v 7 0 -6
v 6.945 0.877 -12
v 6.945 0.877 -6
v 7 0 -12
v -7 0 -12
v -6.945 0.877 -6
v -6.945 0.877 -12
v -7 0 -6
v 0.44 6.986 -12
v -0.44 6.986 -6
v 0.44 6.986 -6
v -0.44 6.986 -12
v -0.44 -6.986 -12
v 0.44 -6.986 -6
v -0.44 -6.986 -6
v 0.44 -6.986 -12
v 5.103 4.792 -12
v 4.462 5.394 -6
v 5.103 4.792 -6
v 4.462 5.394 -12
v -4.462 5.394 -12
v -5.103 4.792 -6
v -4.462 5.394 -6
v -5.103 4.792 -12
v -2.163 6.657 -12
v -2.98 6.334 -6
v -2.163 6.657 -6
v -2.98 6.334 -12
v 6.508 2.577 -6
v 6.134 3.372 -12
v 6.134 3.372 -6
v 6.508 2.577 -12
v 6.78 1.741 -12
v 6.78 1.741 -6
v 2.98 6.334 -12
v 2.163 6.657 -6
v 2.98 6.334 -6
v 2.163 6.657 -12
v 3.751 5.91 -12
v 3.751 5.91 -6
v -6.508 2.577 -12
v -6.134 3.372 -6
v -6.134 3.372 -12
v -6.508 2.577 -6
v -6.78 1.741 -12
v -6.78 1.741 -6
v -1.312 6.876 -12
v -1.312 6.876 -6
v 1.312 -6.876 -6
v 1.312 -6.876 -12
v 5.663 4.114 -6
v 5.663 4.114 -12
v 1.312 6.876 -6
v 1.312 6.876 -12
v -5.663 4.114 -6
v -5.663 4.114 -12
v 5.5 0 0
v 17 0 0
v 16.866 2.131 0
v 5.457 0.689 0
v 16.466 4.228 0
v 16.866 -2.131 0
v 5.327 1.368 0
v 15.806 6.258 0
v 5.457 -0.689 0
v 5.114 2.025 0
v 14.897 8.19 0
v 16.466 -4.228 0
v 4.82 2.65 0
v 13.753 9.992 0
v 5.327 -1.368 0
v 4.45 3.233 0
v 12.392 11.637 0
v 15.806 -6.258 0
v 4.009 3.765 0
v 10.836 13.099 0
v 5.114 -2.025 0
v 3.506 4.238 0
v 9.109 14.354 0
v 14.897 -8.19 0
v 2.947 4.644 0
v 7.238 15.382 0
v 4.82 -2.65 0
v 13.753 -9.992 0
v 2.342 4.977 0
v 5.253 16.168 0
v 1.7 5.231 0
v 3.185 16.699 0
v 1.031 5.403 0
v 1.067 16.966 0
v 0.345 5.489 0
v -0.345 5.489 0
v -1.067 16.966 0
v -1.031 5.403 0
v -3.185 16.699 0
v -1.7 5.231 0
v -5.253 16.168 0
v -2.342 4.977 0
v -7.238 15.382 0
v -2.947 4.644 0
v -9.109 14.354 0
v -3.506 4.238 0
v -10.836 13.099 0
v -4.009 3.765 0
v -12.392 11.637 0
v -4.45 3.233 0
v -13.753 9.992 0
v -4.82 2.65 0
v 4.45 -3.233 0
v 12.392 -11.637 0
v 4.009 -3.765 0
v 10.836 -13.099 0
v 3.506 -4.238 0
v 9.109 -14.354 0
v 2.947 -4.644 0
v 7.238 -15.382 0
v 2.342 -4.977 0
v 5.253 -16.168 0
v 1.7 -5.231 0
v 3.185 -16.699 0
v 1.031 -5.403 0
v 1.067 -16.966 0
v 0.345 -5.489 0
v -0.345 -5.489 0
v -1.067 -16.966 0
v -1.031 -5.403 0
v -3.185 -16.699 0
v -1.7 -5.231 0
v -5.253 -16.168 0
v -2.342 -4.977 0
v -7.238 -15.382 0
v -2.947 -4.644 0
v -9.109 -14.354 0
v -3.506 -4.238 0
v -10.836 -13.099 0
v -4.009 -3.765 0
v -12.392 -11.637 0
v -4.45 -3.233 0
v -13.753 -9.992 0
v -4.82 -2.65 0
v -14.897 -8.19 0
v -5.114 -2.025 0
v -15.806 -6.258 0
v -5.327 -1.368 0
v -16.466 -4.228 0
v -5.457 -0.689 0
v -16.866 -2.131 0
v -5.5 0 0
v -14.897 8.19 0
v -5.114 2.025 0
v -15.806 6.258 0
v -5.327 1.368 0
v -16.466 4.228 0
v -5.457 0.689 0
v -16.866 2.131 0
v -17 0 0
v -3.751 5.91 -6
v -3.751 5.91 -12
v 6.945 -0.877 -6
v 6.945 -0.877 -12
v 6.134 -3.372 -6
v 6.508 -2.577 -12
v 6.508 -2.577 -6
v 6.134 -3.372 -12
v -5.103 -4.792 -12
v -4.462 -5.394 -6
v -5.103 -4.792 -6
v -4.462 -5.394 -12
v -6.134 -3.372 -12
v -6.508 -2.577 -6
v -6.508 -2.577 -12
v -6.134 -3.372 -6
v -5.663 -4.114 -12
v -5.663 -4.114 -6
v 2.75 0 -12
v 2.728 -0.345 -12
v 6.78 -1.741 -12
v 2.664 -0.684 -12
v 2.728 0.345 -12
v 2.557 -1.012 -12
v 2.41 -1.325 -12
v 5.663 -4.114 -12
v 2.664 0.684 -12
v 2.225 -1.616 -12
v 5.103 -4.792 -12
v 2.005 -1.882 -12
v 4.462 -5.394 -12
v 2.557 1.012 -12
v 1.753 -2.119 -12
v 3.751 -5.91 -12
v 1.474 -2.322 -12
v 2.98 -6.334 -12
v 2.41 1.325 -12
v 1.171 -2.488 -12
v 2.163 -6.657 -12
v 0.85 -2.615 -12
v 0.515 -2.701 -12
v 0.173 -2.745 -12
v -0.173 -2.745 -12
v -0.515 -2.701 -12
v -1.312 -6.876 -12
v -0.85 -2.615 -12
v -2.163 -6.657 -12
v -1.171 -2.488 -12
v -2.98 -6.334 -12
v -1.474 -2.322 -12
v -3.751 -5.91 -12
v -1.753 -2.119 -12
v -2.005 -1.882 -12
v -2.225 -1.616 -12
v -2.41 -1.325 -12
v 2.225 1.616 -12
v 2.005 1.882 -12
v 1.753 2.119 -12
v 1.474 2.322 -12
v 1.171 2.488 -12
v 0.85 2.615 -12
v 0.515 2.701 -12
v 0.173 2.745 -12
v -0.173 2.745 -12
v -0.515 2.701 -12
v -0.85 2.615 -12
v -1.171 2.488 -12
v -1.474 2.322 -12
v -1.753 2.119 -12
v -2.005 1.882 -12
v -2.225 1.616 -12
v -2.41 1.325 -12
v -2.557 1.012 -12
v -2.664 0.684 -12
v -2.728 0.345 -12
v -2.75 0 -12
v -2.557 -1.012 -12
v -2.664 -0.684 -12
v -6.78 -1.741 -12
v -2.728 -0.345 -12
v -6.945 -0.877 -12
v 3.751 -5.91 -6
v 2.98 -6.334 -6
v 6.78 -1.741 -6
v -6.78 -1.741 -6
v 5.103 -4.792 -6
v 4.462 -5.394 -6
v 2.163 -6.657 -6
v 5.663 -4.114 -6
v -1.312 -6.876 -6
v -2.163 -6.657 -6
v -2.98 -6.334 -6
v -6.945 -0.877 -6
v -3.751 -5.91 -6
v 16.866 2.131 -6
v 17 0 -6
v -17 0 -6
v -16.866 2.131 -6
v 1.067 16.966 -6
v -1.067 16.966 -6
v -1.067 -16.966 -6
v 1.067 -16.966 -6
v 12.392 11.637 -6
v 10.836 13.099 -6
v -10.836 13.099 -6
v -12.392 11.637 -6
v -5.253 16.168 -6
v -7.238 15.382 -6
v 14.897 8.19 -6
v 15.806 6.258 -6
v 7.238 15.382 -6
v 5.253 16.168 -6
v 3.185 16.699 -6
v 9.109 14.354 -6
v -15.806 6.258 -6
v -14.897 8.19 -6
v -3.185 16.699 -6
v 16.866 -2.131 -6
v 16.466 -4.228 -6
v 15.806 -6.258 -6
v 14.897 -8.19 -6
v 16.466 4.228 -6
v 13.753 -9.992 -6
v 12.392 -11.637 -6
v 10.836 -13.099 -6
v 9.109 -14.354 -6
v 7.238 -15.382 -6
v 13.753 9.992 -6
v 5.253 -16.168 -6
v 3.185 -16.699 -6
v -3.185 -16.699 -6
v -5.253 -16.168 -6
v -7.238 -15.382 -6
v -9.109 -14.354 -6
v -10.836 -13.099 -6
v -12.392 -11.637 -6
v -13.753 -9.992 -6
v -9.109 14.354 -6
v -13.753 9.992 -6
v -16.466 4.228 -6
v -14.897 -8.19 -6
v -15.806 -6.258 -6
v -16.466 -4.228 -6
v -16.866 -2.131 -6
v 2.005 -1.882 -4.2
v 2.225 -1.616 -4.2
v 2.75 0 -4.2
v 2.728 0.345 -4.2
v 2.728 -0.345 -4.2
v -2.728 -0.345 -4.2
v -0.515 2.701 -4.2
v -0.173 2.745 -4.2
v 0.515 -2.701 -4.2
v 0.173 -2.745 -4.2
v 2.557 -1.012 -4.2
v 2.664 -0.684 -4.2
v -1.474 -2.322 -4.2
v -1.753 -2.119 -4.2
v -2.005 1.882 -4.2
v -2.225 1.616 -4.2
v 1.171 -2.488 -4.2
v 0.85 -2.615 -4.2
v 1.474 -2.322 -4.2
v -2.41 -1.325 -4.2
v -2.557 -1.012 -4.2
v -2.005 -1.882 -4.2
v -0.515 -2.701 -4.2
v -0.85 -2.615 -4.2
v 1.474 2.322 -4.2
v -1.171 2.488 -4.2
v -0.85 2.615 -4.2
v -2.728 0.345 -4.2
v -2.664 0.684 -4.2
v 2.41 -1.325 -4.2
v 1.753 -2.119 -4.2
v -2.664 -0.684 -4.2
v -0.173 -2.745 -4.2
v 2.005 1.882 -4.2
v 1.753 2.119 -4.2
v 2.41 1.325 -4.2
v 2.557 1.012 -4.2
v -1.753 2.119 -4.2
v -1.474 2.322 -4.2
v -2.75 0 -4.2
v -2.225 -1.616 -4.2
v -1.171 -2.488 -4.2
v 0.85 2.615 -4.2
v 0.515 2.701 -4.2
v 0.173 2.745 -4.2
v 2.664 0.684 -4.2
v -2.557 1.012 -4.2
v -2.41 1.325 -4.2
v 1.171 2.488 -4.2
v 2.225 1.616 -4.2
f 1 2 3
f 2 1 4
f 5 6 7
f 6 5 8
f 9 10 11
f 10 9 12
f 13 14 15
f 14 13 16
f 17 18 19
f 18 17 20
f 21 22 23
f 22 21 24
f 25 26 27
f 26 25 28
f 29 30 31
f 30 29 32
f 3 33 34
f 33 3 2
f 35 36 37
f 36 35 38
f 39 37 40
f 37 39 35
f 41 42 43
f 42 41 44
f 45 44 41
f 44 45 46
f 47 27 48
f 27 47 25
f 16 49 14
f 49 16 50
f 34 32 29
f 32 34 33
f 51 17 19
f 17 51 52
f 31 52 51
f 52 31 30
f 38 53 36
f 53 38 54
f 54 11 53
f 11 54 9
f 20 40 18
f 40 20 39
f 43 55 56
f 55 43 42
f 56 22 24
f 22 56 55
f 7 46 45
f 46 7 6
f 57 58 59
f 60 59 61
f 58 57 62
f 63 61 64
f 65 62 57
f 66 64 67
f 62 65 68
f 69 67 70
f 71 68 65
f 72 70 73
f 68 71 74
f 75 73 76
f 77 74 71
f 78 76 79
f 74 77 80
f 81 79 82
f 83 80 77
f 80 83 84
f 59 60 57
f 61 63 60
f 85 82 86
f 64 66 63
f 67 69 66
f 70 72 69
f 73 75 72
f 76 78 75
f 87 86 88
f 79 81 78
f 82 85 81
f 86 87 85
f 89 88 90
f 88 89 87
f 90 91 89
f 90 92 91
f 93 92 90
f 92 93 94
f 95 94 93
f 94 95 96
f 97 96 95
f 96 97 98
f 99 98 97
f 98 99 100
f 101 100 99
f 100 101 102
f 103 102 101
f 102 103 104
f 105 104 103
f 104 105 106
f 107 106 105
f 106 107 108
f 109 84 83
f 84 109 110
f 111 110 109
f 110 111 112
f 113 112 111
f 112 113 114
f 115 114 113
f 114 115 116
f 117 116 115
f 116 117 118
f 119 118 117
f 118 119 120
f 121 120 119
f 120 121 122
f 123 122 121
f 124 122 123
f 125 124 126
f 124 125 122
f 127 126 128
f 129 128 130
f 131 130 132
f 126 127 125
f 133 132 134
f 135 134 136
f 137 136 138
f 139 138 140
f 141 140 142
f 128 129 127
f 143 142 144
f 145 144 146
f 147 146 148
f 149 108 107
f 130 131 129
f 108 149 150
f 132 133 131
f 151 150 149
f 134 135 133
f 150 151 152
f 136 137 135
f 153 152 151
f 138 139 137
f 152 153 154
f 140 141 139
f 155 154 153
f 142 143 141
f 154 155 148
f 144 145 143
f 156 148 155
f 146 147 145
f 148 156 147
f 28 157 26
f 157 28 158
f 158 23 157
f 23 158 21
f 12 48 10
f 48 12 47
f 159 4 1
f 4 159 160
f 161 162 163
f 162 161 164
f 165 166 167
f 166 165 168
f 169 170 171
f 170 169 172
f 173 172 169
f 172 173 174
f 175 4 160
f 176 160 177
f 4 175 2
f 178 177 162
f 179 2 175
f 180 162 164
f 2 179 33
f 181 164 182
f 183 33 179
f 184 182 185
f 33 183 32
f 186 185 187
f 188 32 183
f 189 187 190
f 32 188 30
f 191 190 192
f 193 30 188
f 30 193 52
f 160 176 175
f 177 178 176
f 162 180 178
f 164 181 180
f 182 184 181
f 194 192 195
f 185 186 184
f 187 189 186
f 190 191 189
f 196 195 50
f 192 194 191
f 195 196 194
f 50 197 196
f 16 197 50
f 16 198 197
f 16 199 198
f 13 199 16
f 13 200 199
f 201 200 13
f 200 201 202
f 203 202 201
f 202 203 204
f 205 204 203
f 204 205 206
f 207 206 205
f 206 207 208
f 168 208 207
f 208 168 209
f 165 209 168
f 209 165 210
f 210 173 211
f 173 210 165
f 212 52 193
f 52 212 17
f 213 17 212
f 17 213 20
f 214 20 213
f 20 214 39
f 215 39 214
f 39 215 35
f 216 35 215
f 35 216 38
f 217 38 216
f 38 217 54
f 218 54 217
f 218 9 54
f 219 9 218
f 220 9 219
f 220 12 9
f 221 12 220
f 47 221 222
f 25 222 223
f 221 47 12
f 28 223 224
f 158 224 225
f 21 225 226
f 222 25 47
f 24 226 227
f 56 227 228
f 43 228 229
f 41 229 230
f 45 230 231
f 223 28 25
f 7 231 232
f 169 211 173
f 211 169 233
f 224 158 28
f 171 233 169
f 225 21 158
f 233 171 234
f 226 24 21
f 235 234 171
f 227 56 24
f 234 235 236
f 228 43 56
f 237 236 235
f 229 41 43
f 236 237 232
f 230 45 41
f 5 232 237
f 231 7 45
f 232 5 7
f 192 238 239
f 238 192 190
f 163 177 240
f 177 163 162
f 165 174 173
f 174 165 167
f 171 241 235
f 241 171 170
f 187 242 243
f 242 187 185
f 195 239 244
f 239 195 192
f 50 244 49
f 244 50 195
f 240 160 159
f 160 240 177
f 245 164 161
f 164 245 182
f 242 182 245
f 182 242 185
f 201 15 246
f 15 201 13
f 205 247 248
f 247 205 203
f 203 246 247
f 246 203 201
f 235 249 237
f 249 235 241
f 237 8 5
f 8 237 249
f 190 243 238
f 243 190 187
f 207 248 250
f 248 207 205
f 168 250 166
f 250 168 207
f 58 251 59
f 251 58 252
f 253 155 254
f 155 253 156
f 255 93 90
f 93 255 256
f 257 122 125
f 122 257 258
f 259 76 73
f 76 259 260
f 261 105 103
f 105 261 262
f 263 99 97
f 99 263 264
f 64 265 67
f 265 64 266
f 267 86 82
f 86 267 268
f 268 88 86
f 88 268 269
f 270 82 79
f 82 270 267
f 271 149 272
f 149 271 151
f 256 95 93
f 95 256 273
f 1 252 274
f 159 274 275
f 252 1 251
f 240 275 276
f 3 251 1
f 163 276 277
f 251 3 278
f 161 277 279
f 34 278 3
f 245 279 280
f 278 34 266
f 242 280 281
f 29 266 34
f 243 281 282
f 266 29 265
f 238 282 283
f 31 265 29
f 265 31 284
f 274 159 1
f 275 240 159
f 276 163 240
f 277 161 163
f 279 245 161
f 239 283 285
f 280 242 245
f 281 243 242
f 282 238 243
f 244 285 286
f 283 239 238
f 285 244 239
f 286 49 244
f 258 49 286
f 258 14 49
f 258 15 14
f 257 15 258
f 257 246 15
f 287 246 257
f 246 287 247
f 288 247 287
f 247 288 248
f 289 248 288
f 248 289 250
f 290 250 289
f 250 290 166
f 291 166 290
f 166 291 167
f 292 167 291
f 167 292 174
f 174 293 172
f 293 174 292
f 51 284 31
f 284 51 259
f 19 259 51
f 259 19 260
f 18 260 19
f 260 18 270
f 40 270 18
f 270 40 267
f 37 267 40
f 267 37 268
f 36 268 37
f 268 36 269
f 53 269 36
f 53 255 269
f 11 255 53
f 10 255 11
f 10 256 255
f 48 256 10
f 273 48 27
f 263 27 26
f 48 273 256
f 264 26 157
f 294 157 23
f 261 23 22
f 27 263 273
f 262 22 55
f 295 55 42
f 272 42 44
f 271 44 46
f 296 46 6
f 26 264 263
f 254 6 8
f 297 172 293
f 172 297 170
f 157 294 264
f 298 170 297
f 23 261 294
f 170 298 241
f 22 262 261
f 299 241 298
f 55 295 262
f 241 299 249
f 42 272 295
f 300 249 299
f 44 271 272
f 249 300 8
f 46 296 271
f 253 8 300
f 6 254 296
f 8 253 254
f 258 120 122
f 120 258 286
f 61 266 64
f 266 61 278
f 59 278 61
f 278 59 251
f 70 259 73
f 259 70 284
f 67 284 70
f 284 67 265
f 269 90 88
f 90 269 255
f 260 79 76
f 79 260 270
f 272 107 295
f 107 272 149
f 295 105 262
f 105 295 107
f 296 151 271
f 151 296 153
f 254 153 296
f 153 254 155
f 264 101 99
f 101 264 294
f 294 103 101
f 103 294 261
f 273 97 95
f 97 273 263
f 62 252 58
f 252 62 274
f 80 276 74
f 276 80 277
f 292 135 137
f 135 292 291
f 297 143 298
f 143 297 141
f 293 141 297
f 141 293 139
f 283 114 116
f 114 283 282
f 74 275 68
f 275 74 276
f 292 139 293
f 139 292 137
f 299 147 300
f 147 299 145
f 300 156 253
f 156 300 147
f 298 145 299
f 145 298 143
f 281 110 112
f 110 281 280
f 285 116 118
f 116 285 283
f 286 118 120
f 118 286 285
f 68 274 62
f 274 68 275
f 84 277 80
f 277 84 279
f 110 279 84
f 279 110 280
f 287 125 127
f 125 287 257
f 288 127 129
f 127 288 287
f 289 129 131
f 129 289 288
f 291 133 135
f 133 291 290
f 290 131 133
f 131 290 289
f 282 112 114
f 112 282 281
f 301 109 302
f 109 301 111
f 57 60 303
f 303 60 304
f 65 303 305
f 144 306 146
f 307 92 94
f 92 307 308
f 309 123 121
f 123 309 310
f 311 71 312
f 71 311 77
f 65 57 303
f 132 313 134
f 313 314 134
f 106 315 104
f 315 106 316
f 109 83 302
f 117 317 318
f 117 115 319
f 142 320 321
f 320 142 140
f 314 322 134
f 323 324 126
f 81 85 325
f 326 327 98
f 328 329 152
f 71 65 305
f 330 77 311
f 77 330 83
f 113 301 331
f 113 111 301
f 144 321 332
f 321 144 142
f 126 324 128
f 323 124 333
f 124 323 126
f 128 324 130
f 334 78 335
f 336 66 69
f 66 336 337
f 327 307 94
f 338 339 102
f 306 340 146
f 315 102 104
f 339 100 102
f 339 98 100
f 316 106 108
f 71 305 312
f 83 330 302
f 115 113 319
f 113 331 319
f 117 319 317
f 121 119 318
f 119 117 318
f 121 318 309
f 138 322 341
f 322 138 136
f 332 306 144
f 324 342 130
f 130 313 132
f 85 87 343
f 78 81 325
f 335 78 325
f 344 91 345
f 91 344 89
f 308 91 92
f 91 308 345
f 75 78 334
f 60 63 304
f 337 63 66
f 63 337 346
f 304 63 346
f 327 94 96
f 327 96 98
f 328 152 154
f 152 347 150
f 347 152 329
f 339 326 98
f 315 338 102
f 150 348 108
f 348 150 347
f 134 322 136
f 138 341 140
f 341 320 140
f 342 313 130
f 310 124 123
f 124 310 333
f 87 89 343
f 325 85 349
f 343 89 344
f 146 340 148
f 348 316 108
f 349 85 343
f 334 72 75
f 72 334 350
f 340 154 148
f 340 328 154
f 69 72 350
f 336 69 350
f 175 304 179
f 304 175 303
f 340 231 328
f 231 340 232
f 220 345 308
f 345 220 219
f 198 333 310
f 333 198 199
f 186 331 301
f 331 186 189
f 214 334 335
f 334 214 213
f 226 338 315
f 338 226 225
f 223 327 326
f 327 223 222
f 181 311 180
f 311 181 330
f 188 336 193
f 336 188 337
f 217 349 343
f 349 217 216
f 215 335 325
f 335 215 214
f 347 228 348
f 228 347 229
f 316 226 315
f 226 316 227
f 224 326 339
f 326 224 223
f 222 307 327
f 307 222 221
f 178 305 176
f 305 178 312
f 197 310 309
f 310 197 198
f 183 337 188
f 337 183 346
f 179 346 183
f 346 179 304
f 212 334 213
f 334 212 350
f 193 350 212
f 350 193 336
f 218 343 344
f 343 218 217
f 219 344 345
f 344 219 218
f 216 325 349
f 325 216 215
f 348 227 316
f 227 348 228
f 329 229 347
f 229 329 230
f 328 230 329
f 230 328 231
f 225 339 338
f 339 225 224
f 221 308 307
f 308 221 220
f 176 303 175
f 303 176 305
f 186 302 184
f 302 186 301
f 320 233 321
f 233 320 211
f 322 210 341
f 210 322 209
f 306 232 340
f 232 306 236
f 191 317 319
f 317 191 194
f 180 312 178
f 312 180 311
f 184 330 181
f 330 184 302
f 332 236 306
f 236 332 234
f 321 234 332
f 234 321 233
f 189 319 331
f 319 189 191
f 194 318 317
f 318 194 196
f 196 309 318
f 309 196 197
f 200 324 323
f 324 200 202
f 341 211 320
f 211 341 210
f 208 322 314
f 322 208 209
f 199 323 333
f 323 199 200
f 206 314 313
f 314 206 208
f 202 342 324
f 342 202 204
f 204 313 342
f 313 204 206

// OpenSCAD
$fn = 50;


difference() {
	union() {
		translate(v = [0, 0, -12.0000000000]) {
			cylinder(h = 12, r = 7.0000000000);
		}
		translate(v = [0, 0, -6.0000000000]) {
			cylinder(h = 6, r = 17.0000000000);
		}
	}
	union() {
		translate(v = [0, 0, 0]) {
			rotate(a = [0, 0, 0]) {
				difference() {
					union() {
						#translate(v = [0, 0, -12.0000000000]) {
							cylinder(h = 12, r = 2.2500000000);
						}
						#translate(v = [0, 0, -4.2000000000]) {
							cylinder(h = 4.2000000000, r = 7.0000000000, r1 = 2.7500000000, r2 = 5.5000000000);
						}
						#translate(v = [0, 0, -12.0000000000]) {
							cylinder(h = 12, r = 2.7500000000);
						}
						#translate(v = [0, 0, -12.0000000000]) {
							cylinder(h = 12, r = 2.2500000000);
						}
					}
					union();
				}
			}
		}
	}
}
